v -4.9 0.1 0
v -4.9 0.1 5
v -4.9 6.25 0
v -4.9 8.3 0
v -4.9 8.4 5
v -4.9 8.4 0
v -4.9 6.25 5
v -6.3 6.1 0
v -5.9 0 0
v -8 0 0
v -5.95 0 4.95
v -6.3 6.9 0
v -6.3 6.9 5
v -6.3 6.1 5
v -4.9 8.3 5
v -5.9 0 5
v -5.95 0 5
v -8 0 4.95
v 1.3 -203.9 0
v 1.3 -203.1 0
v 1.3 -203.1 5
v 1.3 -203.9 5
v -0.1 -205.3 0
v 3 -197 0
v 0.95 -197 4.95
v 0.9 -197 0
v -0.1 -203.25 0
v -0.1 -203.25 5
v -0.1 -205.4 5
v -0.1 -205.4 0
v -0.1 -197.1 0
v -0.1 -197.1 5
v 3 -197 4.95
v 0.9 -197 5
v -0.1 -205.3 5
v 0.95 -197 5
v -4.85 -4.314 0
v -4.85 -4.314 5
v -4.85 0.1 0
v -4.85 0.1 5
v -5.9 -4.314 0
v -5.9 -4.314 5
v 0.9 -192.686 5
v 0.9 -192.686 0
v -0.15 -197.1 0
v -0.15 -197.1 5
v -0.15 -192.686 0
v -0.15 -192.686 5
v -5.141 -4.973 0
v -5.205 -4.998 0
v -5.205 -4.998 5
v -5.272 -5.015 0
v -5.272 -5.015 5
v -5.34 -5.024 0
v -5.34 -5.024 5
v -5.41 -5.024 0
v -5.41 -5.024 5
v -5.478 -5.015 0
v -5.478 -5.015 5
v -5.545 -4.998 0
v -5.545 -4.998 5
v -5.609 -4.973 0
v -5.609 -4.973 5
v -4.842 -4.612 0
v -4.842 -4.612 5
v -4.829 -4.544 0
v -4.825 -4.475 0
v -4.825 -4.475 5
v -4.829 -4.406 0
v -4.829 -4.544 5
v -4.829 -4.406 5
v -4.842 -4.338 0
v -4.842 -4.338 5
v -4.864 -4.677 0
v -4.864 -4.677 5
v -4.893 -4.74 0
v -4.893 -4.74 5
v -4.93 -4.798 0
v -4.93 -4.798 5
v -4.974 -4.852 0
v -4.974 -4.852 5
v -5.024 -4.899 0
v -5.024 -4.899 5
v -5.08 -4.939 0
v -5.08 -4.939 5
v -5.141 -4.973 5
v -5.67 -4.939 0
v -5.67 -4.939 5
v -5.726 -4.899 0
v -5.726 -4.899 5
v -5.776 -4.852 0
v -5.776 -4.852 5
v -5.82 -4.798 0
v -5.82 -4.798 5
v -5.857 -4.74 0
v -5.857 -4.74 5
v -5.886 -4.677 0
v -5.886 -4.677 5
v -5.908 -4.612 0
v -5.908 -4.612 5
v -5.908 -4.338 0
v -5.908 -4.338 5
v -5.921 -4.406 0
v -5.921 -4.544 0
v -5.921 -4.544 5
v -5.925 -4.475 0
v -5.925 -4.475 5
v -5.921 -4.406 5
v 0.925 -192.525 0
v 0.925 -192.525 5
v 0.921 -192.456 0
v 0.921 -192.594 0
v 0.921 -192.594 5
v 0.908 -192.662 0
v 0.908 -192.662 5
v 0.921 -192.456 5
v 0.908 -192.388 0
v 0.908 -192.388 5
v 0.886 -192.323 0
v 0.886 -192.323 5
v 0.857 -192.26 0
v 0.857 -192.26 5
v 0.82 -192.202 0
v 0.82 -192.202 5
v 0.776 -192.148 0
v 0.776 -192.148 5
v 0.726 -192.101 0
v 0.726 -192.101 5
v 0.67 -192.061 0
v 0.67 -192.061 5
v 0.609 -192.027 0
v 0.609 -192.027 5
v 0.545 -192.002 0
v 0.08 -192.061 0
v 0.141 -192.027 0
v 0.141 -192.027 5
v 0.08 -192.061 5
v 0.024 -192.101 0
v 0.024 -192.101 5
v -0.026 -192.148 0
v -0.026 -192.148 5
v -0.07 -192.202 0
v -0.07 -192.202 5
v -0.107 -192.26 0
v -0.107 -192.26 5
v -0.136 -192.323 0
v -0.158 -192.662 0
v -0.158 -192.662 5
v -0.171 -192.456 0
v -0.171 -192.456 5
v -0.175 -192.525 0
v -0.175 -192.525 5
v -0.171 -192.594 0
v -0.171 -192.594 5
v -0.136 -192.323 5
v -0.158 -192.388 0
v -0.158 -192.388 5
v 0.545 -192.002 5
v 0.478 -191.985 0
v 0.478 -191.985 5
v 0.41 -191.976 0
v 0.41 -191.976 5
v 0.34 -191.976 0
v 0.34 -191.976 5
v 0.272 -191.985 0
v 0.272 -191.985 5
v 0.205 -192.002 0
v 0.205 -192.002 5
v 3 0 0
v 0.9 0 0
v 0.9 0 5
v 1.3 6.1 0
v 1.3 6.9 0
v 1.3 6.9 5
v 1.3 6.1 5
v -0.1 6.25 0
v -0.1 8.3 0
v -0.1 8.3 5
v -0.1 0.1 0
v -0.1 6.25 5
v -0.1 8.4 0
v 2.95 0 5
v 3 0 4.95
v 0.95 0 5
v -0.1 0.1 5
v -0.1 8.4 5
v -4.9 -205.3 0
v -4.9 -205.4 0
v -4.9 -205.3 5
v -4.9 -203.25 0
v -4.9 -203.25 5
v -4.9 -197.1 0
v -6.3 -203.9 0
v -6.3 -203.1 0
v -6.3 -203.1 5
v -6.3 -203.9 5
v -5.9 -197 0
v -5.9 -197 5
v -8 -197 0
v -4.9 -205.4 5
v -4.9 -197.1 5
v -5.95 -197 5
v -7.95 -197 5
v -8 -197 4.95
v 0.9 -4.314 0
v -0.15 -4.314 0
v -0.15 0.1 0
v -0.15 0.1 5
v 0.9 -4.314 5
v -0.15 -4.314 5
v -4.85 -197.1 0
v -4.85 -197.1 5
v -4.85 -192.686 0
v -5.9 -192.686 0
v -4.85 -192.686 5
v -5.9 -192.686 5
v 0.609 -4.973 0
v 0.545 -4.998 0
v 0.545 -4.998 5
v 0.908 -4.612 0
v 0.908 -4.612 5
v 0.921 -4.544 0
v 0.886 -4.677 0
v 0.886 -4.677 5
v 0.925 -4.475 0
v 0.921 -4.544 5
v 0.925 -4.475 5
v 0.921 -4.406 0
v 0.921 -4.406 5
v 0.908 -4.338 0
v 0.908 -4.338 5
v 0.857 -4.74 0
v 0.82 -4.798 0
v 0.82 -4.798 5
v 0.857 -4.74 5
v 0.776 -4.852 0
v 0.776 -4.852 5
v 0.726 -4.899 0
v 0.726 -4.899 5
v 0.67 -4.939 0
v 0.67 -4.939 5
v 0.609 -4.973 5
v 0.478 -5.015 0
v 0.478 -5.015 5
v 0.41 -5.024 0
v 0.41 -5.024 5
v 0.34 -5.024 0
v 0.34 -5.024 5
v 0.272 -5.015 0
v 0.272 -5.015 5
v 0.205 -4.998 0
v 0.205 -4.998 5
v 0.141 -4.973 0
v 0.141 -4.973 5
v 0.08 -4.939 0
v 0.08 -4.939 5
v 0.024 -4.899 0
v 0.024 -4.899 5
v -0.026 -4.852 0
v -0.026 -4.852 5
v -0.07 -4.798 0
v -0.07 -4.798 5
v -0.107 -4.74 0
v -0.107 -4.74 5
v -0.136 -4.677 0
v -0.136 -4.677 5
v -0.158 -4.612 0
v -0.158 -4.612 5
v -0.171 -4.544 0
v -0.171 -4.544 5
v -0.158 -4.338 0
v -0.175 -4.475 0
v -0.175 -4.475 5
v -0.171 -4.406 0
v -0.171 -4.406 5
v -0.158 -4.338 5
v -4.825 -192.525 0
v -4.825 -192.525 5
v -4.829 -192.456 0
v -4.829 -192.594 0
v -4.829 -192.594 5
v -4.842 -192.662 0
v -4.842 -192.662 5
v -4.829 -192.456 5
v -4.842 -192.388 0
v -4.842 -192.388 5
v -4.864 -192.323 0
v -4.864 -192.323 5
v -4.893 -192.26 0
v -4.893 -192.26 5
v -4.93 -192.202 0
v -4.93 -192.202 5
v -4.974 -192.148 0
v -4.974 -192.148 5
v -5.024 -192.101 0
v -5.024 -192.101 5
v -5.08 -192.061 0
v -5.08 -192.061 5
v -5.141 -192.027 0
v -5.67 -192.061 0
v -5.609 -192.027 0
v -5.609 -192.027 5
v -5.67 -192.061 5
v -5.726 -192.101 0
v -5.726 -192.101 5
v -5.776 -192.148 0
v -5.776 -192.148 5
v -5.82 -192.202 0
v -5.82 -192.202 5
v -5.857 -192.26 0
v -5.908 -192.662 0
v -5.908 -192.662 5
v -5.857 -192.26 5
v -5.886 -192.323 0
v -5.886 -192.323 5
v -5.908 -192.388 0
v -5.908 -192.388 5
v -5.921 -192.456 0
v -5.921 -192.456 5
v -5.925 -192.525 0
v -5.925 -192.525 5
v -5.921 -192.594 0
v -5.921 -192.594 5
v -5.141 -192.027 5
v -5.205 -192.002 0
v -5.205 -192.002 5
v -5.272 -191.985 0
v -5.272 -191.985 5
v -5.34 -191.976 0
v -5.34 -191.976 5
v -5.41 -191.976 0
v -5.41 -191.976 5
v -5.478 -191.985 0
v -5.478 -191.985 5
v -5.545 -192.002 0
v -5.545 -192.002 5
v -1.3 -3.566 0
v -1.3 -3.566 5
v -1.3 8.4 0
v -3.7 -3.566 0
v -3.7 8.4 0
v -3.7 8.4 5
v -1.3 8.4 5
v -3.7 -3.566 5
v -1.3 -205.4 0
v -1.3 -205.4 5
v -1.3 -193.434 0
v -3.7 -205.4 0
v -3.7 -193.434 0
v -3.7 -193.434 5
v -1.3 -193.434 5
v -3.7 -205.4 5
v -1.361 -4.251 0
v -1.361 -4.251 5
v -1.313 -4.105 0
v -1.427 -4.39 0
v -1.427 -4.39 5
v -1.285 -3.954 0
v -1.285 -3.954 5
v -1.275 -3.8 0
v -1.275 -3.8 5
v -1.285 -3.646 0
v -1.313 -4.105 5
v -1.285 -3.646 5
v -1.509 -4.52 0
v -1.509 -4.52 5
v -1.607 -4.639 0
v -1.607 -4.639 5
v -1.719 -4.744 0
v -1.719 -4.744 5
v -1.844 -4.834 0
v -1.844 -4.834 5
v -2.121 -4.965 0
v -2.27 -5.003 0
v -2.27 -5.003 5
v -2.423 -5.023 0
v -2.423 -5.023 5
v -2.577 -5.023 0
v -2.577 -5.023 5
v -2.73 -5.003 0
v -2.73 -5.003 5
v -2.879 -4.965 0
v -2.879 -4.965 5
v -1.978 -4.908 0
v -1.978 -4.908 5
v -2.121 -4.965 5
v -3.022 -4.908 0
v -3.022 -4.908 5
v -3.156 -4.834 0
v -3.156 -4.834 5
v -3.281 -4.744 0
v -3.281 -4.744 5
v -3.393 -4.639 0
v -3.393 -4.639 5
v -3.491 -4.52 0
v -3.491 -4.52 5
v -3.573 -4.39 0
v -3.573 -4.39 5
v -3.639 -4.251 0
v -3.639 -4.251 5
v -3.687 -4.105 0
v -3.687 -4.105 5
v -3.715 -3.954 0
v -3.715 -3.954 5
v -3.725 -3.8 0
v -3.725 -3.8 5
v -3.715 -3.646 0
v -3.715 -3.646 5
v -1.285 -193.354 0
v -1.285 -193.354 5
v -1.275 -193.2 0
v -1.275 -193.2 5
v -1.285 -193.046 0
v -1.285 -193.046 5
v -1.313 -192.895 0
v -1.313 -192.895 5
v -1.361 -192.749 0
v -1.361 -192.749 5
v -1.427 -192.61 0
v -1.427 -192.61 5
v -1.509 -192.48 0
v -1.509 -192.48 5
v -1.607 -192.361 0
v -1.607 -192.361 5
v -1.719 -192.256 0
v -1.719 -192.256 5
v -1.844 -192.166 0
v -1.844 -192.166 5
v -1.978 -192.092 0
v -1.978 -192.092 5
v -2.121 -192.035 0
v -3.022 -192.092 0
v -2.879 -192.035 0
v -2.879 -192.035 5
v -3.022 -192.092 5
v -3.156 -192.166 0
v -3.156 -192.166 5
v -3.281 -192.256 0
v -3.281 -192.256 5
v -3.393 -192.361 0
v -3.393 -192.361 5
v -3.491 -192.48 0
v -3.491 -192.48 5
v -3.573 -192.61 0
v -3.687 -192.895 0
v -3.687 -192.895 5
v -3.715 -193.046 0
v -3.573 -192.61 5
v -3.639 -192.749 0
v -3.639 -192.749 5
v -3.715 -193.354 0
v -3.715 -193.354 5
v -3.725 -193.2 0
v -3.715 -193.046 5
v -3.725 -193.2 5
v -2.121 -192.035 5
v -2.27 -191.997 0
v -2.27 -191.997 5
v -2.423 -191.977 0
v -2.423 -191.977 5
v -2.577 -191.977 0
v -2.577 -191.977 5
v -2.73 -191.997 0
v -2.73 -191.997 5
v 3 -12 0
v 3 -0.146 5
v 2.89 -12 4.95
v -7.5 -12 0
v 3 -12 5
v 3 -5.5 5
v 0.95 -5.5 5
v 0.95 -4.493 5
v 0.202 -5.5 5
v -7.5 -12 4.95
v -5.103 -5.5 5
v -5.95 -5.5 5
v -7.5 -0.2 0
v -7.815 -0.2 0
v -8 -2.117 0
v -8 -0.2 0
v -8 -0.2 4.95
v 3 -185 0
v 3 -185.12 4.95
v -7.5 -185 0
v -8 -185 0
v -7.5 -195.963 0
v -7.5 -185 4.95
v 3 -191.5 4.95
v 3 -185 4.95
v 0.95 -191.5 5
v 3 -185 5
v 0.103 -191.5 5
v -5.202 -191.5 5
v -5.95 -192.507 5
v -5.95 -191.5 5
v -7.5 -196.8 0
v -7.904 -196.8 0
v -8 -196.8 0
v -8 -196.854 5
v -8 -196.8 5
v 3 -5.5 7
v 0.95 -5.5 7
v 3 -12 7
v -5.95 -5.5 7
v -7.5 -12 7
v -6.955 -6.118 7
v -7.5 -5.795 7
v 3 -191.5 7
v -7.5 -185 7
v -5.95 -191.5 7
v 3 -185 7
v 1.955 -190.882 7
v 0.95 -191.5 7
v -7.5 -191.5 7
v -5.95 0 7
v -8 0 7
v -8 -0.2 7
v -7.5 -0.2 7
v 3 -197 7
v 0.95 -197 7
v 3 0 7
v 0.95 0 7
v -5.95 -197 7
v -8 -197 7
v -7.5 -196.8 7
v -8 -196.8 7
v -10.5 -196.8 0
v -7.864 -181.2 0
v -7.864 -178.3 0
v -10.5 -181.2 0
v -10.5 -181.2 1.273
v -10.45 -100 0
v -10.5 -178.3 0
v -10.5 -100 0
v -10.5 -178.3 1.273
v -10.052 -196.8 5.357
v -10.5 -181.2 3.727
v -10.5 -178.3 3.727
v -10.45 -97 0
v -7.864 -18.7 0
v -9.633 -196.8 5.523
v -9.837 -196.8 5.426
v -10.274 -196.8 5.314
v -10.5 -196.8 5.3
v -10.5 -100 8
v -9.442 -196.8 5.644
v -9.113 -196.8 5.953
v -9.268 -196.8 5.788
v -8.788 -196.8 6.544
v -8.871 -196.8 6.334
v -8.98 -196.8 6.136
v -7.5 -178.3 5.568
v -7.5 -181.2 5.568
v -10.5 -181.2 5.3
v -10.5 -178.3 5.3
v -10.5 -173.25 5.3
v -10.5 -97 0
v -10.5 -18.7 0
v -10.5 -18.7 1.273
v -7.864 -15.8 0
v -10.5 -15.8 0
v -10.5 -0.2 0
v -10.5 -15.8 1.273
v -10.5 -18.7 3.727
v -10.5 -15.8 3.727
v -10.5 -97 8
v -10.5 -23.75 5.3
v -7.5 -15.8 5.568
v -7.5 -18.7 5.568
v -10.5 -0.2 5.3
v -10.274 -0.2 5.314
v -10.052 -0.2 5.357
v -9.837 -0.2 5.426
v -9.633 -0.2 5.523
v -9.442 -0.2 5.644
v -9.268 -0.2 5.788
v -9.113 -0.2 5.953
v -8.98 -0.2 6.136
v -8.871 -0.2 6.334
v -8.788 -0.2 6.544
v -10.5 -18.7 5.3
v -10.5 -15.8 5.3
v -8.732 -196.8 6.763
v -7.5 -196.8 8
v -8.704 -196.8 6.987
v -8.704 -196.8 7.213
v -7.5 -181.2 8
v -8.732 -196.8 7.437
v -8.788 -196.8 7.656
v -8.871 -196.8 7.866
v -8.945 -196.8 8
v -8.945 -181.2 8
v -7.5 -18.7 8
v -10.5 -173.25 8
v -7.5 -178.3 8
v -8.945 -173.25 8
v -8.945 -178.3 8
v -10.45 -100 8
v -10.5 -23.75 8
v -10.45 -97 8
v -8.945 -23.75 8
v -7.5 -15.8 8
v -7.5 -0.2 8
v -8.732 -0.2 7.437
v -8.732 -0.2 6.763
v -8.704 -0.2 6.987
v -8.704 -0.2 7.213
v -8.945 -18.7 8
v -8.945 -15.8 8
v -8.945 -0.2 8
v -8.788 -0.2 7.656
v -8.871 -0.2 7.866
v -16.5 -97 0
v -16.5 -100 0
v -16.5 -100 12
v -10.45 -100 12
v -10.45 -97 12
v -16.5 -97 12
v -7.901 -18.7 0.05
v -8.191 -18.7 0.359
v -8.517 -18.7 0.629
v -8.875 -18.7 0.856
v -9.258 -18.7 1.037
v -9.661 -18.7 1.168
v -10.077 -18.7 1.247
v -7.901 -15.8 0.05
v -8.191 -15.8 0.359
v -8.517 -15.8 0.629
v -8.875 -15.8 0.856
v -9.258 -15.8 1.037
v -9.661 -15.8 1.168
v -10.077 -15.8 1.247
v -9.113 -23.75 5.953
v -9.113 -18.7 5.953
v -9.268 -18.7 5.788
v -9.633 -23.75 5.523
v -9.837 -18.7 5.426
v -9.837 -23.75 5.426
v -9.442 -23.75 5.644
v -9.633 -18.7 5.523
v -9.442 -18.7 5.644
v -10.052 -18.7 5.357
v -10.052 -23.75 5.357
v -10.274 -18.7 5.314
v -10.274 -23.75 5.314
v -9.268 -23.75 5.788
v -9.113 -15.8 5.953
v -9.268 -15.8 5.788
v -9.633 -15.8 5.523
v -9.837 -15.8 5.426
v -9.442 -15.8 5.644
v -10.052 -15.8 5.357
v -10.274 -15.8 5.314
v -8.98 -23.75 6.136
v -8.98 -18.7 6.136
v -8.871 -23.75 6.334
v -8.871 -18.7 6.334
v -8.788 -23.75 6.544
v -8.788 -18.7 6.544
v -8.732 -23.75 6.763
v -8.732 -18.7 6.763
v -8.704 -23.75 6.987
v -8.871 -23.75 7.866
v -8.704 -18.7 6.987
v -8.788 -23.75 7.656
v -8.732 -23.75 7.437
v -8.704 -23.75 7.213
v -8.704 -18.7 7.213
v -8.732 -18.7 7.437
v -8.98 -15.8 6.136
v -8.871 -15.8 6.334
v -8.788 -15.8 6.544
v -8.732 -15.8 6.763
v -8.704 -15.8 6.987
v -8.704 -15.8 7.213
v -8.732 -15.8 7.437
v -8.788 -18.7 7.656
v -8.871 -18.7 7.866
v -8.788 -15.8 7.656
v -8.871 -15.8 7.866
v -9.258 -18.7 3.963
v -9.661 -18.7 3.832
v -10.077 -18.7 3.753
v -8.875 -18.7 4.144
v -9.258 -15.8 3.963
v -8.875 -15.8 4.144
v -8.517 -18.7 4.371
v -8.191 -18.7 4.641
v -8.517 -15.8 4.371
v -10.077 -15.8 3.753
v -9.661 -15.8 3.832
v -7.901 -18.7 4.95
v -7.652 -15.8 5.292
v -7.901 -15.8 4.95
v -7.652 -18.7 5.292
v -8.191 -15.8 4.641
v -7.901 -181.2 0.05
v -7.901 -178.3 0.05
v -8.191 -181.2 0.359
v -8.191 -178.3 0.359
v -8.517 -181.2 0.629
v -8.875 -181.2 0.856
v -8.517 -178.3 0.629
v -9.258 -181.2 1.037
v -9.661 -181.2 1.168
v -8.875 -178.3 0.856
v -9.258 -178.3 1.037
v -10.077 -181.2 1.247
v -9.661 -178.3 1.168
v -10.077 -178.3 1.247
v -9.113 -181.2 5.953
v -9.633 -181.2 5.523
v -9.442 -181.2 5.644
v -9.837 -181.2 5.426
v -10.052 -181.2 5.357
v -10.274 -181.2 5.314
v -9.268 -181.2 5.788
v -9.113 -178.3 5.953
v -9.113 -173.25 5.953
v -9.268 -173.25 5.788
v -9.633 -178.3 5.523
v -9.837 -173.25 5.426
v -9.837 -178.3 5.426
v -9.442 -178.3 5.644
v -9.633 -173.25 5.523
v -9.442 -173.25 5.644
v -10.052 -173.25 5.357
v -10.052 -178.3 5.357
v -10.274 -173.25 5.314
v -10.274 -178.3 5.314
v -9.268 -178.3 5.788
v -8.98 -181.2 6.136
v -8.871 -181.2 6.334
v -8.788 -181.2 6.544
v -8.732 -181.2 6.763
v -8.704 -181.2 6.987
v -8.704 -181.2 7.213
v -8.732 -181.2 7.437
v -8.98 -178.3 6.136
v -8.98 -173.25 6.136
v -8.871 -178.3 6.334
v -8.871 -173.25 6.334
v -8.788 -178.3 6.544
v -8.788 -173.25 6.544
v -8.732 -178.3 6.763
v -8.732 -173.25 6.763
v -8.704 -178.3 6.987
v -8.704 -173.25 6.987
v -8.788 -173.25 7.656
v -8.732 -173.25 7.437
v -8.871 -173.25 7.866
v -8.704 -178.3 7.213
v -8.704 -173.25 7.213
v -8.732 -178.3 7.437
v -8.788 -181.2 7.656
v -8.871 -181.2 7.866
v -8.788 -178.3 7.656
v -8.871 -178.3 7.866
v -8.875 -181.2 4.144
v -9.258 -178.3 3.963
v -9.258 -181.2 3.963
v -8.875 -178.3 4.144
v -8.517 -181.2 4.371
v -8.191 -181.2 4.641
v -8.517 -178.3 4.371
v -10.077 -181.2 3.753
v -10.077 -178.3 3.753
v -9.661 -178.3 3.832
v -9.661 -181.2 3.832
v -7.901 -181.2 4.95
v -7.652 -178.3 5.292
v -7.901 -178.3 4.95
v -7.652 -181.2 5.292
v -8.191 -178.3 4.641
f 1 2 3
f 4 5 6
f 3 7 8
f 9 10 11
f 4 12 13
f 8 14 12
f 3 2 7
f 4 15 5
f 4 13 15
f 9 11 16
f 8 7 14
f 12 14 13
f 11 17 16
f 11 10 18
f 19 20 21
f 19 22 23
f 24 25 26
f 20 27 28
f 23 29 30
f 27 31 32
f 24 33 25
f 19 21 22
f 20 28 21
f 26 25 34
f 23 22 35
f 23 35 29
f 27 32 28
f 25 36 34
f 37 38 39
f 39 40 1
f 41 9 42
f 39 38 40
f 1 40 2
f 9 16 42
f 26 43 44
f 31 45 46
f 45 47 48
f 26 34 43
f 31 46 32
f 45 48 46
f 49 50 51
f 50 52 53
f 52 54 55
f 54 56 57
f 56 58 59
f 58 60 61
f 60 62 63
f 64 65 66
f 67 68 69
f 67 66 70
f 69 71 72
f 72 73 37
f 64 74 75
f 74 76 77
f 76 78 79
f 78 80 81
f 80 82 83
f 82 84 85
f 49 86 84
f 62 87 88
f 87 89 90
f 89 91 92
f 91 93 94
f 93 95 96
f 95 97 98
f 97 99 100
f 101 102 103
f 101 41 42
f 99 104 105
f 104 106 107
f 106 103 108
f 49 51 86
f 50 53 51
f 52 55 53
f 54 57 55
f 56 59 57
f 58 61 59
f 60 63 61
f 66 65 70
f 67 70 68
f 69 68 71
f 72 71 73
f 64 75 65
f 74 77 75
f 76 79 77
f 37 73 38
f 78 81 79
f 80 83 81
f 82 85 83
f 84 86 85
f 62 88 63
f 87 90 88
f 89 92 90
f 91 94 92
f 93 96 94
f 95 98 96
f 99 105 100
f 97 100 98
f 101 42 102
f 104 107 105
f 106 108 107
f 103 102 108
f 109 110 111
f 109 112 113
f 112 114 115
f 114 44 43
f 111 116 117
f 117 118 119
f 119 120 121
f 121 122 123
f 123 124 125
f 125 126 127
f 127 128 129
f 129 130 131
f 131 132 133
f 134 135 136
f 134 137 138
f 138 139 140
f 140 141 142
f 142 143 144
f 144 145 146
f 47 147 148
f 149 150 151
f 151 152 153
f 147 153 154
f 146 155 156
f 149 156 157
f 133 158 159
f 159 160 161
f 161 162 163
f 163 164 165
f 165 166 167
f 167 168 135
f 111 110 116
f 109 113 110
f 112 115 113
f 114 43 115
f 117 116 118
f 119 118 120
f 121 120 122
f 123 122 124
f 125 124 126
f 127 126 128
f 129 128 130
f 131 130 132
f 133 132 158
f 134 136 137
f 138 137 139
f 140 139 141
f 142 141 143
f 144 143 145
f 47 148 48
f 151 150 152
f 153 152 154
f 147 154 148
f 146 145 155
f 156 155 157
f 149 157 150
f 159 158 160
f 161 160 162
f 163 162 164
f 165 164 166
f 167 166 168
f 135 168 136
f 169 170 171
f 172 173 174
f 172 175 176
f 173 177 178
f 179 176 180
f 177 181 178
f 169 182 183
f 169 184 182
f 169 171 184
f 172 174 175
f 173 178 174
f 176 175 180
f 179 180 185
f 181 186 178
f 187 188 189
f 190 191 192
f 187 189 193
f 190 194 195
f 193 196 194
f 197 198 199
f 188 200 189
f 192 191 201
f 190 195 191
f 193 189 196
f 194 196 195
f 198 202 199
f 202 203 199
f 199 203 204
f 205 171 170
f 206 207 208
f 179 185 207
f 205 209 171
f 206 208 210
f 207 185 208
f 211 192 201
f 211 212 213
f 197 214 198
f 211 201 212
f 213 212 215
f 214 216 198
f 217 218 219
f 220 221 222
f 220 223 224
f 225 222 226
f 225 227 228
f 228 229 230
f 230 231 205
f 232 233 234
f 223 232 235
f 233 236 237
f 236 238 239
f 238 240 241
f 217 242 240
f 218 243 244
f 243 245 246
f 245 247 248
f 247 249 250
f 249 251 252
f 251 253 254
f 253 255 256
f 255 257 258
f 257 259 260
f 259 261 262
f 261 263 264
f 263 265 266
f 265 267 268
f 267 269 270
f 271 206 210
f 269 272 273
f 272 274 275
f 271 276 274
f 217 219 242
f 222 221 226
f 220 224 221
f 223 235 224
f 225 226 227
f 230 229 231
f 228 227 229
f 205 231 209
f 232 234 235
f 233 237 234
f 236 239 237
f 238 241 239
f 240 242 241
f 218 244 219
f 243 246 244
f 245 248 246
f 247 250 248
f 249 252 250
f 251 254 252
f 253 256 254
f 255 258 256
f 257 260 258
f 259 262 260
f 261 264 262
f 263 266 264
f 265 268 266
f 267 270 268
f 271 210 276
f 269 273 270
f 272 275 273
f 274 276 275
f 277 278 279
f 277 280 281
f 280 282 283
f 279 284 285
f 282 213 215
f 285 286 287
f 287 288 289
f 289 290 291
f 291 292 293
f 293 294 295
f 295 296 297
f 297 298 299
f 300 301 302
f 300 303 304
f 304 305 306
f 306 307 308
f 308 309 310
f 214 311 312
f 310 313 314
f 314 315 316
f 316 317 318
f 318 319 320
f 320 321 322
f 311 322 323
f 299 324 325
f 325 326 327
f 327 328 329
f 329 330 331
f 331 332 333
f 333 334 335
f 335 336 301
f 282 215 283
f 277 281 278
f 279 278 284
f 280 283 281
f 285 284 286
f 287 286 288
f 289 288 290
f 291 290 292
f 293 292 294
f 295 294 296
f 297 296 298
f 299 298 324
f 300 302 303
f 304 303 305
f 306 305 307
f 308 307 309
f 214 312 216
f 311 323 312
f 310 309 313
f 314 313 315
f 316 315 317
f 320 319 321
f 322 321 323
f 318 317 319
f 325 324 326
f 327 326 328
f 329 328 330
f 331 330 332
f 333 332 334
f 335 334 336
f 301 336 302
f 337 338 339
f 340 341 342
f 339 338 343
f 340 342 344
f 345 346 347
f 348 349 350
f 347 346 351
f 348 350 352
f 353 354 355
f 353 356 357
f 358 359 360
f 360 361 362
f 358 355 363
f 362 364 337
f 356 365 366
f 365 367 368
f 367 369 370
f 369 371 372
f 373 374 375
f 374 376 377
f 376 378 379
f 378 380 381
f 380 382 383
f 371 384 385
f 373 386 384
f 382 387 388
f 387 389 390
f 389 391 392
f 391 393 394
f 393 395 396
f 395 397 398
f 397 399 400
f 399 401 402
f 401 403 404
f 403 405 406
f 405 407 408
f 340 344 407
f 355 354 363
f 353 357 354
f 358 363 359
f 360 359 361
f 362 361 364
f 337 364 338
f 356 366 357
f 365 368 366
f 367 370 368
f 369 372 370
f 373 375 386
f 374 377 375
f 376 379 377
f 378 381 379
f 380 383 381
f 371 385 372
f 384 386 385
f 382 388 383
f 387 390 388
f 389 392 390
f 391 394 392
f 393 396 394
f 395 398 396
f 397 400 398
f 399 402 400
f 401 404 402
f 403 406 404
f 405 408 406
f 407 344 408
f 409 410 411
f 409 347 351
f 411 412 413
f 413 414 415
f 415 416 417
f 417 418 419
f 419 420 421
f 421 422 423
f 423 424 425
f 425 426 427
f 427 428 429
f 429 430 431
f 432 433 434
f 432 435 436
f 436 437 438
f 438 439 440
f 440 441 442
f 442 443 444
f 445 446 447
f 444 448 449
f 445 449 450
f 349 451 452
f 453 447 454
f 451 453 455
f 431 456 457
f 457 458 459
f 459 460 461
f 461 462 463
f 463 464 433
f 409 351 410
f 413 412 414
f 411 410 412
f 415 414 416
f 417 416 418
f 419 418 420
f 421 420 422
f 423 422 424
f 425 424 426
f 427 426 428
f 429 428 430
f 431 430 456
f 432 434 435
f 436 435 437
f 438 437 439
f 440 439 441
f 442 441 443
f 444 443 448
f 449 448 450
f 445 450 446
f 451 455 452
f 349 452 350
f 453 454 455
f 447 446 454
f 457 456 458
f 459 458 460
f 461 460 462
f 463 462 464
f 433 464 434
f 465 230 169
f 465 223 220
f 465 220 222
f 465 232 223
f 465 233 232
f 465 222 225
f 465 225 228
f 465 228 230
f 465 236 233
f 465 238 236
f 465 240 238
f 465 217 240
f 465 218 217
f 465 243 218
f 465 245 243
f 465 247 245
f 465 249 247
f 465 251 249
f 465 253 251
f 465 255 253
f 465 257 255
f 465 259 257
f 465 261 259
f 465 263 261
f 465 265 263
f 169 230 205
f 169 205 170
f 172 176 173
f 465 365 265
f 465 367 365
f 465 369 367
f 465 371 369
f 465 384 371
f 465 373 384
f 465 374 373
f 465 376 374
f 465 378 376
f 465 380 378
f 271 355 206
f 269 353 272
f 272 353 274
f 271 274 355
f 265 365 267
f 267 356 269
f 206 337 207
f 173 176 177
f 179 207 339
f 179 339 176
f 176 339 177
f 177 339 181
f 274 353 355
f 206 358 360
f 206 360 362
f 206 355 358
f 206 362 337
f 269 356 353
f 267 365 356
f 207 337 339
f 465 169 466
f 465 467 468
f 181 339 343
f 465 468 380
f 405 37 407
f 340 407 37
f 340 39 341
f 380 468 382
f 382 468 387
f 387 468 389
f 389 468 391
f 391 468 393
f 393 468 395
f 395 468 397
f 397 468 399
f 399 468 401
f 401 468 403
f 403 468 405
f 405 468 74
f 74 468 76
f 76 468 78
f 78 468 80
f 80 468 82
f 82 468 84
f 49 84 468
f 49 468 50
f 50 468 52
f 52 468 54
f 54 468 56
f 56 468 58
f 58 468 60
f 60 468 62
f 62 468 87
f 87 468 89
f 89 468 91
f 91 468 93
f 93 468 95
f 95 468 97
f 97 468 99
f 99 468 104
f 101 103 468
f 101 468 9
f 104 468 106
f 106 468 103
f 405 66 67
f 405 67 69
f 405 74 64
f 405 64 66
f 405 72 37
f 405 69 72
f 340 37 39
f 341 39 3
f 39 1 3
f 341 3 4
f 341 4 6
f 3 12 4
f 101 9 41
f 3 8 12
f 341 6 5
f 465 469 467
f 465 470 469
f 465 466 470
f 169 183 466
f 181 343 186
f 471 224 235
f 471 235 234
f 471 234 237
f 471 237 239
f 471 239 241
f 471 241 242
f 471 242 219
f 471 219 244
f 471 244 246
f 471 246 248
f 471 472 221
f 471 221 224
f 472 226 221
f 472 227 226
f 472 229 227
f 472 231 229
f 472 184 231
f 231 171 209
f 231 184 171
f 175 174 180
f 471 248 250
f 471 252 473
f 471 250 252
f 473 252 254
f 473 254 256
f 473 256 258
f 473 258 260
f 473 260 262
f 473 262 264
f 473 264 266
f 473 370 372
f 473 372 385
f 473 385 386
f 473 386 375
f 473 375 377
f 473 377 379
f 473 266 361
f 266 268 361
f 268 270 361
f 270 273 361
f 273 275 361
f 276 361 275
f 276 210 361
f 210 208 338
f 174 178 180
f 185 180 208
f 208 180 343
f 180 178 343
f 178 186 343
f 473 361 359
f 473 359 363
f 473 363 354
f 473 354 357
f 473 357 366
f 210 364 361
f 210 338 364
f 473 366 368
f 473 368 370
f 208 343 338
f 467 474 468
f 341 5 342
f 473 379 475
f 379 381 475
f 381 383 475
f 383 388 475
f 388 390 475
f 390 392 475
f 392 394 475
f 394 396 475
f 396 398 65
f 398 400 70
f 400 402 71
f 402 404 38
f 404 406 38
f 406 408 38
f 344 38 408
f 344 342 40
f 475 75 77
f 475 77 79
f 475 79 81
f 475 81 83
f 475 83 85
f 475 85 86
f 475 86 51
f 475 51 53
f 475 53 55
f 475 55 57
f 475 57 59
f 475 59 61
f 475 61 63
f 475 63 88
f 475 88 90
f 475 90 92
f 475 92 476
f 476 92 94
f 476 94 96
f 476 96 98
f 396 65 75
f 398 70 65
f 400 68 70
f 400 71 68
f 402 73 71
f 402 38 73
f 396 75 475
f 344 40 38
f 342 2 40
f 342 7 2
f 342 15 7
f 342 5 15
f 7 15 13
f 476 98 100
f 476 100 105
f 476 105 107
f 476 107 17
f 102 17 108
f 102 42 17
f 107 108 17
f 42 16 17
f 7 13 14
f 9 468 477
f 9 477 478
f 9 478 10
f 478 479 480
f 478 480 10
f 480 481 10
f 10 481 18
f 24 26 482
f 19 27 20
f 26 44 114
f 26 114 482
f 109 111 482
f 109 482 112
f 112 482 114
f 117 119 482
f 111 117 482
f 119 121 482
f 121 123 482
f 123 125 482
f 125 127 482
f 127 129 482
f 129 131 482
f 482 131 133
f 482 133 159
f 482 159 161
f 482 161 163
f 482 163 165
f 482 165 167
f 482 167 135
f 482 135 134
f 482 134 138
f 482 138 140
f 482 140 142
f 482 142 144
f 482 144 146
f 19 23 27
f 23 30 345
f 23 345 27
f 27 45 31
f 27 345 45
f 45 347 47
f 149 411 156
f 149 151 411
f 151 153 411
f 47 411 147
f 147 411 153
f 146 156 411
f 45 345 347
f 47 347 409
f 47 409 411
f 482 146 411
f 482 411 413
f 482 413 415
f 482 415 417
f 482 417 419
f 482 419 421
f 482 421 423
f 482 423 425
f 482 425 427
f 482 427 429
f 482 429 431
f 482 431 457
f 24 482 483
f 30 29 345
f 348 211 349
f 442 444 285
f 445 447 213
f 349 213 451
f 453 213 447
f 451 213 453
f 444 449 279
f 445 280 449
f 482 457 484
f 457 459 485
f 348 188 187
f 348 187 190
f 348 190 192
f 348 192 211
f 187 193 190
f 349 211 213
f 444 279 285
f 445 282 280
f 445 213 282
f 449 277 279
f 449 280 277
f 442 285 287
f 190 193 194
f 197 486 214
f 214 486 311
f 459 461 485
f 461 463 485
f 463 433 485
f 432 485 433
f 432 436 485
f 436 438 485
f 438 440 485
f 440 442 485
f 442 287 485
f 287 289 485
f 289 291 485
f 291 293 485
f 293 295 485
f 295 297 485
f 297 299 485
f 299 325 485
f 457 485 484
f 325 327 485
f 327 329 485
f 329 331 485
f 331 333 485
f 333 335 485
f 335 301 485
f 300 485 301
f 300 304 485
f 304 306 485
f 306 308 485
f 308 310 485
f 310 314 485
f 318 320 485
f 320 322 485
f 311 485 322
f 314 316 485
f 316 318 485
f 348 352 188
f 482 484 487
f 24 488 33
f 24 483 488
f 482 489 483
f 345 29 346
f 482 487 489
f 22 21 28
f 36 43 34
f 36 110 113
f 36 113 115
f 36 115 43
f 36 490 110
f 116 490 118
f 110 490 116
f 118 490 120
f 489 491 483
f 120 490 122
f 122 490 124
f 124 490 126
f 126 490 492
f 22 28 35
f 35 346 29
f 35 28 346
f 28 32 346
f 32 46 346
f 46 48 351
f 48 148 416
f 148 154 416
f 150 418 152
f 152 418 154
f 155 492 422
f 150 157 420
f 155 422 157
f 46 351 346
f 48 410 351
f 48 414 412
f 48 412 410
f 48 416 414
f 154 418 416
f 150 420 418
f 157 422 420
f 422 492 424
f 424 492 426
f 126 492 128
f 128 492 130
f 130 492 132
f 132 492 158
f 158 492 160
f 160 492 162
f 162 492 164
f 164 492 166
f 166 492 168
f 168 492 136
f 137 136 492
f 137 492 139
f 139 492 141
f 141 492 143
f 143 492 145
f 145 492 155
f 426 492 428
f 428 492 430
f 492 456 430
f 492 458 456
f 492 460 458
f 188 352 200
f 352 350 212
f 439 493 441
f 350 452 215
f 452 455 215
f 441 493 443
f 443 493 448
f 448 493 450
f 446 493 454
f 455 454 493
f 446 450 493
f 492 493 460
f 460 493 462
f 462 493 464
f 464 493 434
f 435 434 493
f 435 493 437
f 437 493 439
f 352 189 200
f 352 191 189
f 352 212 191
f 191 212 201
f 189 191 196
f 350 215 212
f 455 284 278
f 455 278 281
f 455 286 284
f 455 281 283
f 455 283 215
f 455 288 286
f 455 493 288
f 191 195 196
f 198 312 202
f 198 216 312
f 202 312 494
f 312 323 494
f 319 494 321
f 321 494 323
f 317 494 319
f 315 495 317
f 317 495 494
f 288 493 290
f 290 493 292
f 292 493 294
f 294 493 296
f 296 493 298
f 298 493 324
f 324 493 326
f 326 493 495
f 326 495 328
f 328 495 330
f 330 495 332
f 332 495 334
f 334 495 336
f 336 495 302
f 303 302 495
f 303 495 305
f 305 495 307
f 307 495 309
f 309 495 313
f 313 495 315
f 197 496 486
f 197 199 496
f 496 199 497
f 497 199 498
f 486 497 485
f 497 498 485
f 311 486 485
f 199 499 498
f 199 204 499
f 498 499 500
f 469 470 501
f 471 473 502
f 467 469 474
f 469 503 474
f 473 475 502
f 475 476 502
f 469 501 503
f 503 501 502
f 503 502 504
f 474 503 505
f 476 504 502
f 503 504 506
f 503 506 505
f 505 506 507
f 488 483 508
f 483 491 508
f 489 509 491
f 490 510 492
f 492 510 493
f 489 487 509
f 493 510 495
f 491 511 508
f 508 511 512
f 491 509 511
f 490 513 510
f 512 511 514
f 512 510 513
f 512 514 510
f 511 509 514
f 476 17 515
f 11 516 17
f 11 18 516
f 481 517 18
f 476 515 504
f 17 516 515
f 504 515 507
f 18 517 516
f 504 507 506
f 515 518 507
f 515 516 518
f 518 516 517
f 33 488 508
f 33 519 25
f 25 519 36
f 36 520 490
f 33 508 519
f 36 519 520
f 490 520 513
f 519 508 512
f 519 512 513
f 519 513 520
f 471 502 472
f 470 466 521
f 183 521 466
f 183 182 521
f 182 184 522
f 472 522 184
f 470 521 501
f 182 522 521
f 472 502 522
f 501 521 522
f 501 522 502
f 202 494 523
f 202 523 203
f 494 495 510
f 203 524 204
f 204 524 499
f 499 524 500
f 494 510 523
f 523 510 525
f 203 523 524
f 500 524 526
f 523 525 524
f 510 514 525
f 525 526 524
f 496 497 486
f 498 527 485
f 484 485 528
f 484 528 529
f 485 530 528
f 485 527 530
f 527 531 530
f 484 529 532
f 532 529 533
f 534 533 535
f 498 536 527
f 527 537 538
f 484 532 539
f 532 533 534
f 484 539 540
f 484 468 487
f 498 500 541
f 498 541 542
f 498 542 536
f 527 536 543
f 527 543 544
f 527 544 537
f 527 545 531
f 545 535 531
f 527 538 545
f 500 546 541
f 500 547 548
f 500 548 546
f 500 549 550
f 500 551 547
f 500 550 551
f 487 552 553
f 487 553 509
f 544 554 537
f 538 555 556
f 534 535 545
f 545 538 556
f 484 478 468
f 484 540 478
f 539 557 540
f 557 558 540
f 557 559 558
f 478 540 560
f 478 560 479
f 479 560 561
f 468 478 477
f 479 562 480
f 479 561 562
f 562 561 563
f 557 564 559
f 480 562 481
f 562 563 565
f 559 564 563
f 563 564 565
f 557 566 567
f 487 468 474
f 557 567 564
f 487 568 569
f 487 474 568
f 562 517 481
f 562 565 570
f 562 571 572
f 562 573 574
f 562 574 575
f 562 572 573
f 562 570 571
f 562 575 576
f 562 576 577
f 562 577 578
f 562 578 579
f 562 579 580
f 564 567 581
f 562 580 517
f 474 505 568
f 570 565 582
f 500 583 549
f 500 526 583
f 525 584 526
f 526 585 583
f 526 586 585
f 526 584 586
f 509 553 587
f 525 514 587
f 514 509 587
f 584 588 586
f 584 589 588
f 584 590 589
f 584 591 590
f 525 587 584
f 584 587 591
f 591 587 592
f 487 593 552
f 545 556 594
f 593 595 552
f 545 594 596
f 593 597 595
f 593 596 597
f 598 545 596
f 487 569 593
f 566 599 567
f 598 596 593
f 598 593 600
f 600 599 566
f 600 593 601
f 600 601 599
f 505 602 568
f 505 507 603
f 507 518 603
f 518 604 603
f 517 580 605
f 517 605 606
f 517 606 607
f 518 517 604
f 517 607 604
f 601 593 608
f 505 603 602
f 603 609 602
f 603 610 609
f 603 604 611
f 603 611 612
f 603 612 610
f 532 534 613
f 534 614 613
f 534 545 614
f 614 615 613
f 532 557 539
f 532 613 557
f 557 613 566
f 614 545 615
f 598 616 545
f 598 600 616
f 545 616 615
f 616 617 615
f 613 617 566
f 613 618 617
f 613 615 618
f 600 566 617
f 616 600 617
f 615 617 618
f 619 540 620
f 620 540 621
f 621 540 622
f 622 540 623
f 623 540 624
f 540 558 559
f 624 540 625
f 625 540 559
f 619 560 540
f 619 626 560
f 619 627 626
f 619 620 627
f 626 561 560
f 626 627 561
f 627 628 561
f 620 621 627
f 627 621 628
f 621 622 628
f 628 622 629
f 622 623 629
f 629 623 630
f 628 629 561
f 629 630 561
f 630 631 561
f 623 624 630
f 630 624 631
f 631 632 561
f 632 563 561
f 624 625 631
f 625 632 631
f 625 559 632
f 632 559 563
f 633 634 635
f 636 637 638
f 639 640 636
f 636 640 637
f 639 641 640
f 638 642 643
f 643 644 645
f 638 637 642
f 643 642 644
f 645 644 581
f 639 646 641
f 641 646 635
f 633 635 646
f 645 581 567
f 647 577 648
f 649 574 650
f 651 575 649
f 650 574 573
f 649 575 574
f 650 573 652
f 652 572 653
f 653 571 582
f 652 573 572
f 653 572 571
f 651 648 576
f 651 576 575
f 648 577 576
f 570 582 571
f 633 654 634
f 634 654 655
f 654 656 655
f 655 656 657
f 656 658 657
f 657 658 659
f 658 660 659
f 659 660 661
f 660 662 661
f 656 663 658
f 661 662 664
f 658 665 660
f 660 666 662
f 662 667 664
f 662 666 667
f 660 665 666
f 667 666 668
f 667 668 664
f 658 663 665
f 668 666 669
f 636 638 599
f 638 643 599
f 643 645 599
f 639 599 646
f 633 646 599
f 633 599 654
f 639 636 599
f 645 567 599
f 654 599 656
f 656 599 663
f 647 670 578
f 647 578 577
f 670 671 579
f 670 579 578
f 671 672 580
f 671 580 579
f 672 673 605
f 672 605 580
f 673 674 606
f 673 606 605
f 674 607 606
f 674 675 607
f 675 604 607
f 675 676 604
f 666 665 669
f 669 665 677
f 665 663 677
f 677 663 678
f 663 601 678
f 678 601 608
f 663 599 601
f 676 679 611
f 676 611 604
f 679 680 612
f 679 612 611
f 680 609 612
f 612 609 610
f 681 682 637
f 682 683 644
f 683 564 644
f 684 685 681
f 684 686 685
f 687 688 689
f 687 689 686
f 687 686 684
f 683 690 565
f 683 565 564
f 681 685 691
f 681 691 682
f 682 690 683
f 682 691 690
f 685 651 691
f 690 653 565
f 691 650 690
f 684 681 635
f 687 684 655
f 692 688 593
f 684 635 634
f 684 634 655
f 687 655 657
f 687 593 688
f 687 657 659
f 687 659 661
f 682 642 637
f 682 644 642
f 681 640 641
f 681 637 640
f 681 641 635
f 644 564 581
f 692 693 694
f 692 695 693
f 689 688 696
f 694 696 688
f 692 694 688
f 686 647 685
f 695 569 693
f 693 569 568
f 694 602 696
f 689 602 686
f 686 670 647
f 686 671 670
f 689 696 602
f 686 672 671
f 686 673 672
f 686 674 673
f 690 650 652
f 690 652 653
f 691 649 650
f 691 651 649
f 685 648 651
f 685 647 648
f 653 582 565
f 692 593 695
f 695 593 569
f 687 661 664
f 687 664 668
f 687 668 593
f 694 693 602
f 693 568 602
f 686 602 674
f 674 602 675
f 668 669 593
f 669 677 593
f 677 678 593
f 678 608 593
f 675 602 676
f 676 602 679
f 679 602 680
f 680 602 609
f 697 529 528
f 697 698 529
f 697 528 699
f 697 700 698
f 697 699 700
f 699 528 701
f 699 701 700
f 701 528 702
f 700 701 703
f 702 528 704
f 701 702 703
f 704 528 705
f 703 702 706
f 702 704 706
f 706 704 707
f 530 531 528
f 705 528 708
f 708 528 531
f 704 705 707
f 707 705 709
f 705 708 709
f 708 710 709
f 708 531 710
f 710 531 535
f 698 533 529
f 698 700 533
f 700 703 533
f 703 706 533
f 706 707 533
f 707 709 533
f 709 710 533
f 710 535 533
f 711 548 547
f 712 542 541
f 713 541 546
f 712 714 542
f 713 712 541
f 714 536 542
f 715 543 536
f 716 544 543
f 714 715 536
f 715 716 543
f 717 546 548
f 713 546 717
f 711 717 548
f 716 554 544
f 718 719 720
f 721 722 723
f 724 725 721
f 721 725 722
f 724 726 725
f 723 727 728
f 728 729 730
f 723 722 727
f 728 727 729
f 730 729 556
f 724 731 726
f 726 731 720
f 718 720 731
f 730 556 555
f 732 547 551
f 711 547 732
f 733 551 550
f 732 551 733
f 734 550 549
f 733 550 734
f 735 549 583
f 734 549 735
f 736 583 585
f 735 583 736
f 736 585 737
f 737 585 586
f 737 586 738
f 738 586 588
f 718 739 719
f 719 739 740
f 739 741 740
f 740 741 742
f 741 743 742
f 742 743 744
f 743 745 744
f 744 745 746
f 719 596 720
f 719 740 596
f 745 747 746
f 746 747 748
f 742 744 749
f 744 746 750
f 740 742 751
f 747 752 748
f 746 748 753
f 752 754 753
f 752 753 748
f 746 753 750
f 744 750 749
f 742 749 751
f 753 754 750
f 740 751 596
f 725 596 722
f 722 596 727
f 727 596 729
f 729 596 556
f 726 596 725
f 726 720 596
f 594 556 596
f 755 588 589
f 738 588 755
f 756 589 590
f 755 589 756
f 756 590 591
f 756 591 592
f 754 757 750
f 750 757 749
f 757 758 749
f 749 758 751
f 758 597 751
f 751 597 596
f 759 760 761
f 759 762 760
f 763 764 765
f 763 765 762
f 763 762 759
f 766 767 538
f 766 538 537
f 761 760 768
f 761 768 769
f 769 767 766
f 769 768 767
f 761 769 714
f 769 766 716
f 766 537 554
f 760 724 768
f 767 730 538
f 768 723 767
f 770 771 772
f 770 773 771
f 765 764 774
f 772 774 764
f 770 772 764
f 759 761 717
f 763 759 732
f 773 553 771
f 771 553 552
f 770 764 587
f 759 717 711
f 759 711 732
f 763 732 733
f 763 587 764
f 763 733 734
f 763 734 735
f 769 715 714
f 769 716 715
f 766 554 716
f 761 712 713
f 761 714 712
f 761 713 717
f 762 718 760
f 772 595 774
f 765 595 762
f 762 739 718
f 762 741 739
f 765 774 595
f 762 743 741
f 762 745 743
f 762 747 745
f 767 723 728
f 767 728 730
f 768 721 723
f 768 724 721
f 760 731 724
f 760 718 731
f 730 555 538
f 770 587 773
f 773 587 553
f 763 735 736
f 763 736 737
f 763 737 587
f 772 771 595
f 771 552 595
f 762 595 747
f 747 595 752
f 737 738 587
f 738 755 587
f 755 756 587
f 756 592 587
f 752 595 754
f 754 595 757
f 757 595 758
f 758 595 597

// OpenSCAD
$fn = 50;

difference() {
	union() {
		translate(v = [0, 0, 0]) {
			rotate(a = [0, 0, 0]) {
				difference() {
					union() {
						translate(v = [0, 0, 2.5]) {
							rotate(a = [0, -90, 0]) {
								difference() {
									union() {
										translate(v = [0, 0, 0]) {
											rotate(a = [0, 0, 0]) {
												difference() {
													union() {
														translate(v = [-2.5, 0, 2.5]) {
															rotate(a = [0, 90.0, 0]) {
																difference() {
																	union() {
																		translate(v = [0, 0, 0]) {
																			rotate(a = [0, 0, 0]) {
																				difference() {
																					union() {
																						translate(v = [0, 0, 0]) {
																							rotate(a = [0, 0, 0]) {
																								difference() {
																									union() {
																										translate(v = [-5.5, -12.0, 0]) {
																											cube(size = [11.0, 20.4, 5.0]);
																										}
																									}
																									union() {
																										translate(v = [0, 0, -0.1]) {
																											linear_extrude(height = 5.2) {
																												polygon(points = [[-2.4, 0], [-2.4, 6.25], [-3.8, 6.1], [-3.8, 6.8999999999999995], [-2.4, 8.299999999999999], [-2.4, 9.399999999999999], [-5.7, 9.399999999999999], [-5.7, 0]]);
																											}
																										}
																										translate(v = [0, 0, -0.1]) {
																											linear_extrude(height = 5.2) {
																												polygon(points = [[-2.35, -4.5], [-2.35, -4.3875], [-2.35, -4.275], [-2.35, -4.1625], [-2.35, -4.05], [-2.35, -3.9375], [-2.35, -3.825], [-2.35, -3.7125], [-2.35, -3.6], [-2.35, -3.4875], [-2.35, -3.375], [-2.35, -3.2625], [-2.35, -3.15], [-2.35, -3.0375], [-2.35, -2.925], [-2.35, -2.8125], [-2.35, -2.7], [-2.35, -2.5875], [-2.35, -2.475], [-2.35, -2.3625], [-2.35, -2.25], [-2.35, -2.1375], [-2.35, -2.025], [-2.35, -1.9125], [-2.35, -1.7999999999999998], [-2.35, -1.6875], [-2.35, -1.5750000000000002], [-2.35, -1.4625], [-2.35, -1.35], [-2.35, -1.2374999999999998], [-2.35, -1.125], [-2.35, -1.0125000000000002], [-2.35, -0.8999999999999999], [-2.35, -0.7875000000000001], [-2.35, -0.6749999999999998], [-2.35, -0.5625], [-2.35, -0.4500000000000002], [-2.35, -0.33750000000000036], [-2.35, -0.22499999999999964], [-2.35, -0.11249999999999982], [-2.35, 0.0], [-2.35, 0.1], [-3.4, 0.1], [-3.4, -4.5]]);
																											}
																										}
																										translate(v = [-2.875, -4.475, -0.1]) {
																											cylinder(h = 5.2, r = 0.55);
																										}
																										translate(v = [0, 0, -0.1]) {
																											linear_extrude(height = 5.2) {
																												polygon(points = [[2.4, 0], [2.4, 6.25], [3.8, 6.1], [3.8, 6.8999999999999995], [2.4, 8.299999999999999], [2.4, 9.399999999999999], [5.7, 9.399999999999999], [5.7, 0]]);
																											}
																										}
																										translate(v = [0, 0, -0.1]) {
																											linear_extrude(height = 5.2) {
																												polygon(points = [[2.35, -4.5], [2.35, -4.3875], [2.35, -4.275], [2.35, -4.1625], [2.35, -4.05], [2.35, -3.9375], [2.35, -3.825], [2.35, -3.7125], [2.35, -3.6], [2.35, -3.4875], [2.35, -3.375], [2.35, -3.2625], [2.35, -3.15], [2.35, -3.0375], [2.35, -2.925], [2.35, -2.8125], [2.35, -2.7], [2.35, -2.5875], [2.35, -2.475], [2.35, -2.3625], [2.35, -2.25], [2.35, -2.1375], [2.35, -2.025], [2.35, -1.9125], [2.35, -1.7999999999999998], [2.35, -1.6875], [2.35, -1.5750000000000002], [2.35, -1.4625], [2.35, -1.35], [2.35, -1.2374999999999998], [2.35, -1.125], [2.35, -1.0125000000000002], [2.35, -0.8999999999999999], [2.35, -0.7875000000000001], [2.35, -0.6749999999999998], [2.35, -0.5625], [2.35, -0.4500000000000002], [2.35, -0.33750000000000036], [2.35, -0.22499999999999964], [2.35, -0.11249999999999982], [2.35, 0.0], [2.35, 0.1], [3.4, 0.1], [3.4, -4.5]]);
																											}
																										}
																										translate(v = [2.875, -4.475, -0.1]) {
																											cylinder(h = 5.2, r = 0.55);
																										}
																										translate(v = [0, 0, -0.1]) {
																											linear_extrude(height = 5.2) {
																												polygon(points = [[-1.2, -3.8499999999999996], [-1.2, -3.6607142857142856], [-1.2, -3.471428571428571], [-1.2, -3.2821428571428566], [-1.2, -3.0928571428571425], [-1.2, -2.9035714285714285], [-1.2, -2.714285714285714], [-1.2, -2.5249999999999995], [-1.2, -2.3357142857142854], [-1.2, -2.1464285714285714], [-1.2, -1.9571428571428569], [-1.2, -1.7678571428571423], [-1.2, -1.5785714285714283], [-1.2, -1.3892857142857138], [-1.2, -1.1999999999999997], [-1.2, -1.0107142857142852], [-1.2, -0.8214285714285712], [-1.2, -0.6321428571428567], [-1.2, -0.4428571428571426], [-1.2, -0.2535714285714281], [-1.2, -0.06428571428571406], [-1.2, 0], [-1.2, 0.12500000000000044], [-1.2, 0.31428571428571495], [-1.2, 0.503571428571429], [-1.2, 0.6928571428571431], [-1.2, 0.8821428571428571], [-1.2, 1.071428571428572], [-1.2, 1.2607142857142861], [-1.2, 1.4500000000000002], [-1.2, 1.6392857142857142], [-1.2, 1.8285714285714292], [-1.2, 2.0178571428571432], [-1.2, 2.2071428571428573], [-1.2, 2.3964285714285714], [-1.2, 2.5857142857142863], [-1.2, 2.7750000000000004], [-1.2, 2.9642857142857144], [-1.2, 3.1535714285714294], [-1.2, 3.3428571428571434], [-1.2, 3.5321428571428575], [-1.2, 3.7214285714285715], [-1.2, 3.9107142857142865], [-1.2, 4.1000000000000005], [-1.2, 4.289285714285715], [-1.2, 4.4785714285714295], [-1.2, 4.667857142857143], [-1.2, 4.857142857142858], [-1.2, 5.046428571428573], [-1.2, 5.235714285714286], [-1.2, 5.425000000000001], [-1.2, 5.614285714285714], [-1.2, 5.803571428571429], [-1.2, 5.992857142857144], [-1.2, 6.1], [-1.2, 6.182142857142857], [-1.2, 6.25], [-1.2, 6.371428571428572], [-1.2, 6.560714285714287], [-1.2, 6.75], [-1.2, 6.939285714285715], [-1.2, 7.128571428571428], [-1.2, 7.317857142857143], [-1.2, 7.507142857142858], [-1.2, 7.696428571428571], [-1.2, 7.885714285714286], [-1.2, 8.075000000000001], [-1.2, 8.264285714285714], [-1.2, 8.45357142857143], [-1.2, 8.642857142857142], [-1.2, 8.832142857142857], [-1.2, 9.021428571428572], [-1.2, 9.210714285714285], [-1.2, 9.4], [1.2, 9.4], [1.2, 9.210714285714285], [1.2, 9.021428571428572], [1.2, 8.832142857142857], [1.2, 8.642857142857142], [1.2, 8.45357142857143], [1.2, 8.264285714285714], [1.2, 8.075000000000001], [1.2, 7.885714285714286], [1.2, 7.696428571428571], [1.2, 7.507142857142858], [1.2, 7.317857142857143], [1.2, 7.128571428571428], [1.2, 6.939285714285715], [1.2, 6.75], [1.2, 6.560714285714287], [1.2, 6.371428571428572], [1.2, 6.25], [1.2, 6.182142857142857], [1.2, 6.1], [1.2, 5.992857142857144], [1.2, 5.803571428571429], [1.2, 5.614285714285714], [1.2, 5.425000000000001], [1.2, 5.235714285714286], [1.2, 5.046428571428573], [1.2, 4.857142857142858], [1.2, 4.667857142857143], [1.2, 4.4785714285714295], [1.2, 4.289285714285715], [1.2, 4.1000000000000005], [1.2, 3.9107142857142865], [1.2, 3.7214285714285715], [1.2, 3.5321428571428575], [1.2, 3.3428571428571434], [1.2, 3.1535714285714294], [1.2, 2.9642857142857144], [1.2, 2.7750000000000004], [1.2, 2.5857142857142863], [1.2, 2.3964285714285714], [1.2, 2.2071428571428573], [1.2, 2.0178571428571432], [1.2, 1.8285714285714292], [1.2, 1.6392857142857142], [1.2, 1.4500000000000002], [1.2, 1.2607142857142861], [1.2, 1.071428571428572], [1.2, 0.8821428571428571], [1.2, 0.6928571428571431], [1.2, 0.503571428571429], [1.2, 0.31428571428571495], [1.2, 0.12500000000000044], [1.2, 0], [1.2, -0.06428571428571406], [1.2, -0.2535714285714281], [1.2, -0.4428571428571426], [1.2, -0.6321428571428567], [1.2, -0.8214285714285712], [1.2, -1.0107142857142852], [1.2, -1.1999999999999997], [1.2, -1.3892857142857138], [1.2, -1.5785714285714283], [1.2, -1.7678571428571423], [1.2, -1.9571428571428569], [1.2, -2.1464285714285714], [1.2, -2.3357142857142854], [1.2, -2.5249999999999995], [1.2, -2.714285714285714], [1.2, -2.9035714285714285], [1.2, -3.0928571428571425], [1.2, -3.2821428571428566], [1.2, -3.471428571428571], [1.2, -3.6607142857142856], [1.2, -3.8499999999999996]]);
																											}
																										}
																										translate(v = [0, -3.8, -0.1]) {
																											cylinder(h = 5.2, r = 1.2249999999999999);
																										}
																									}
																								}
																							}
																						}
																						translate(v = [0, 0, 0]) {
																							rotate(a = [0, 0, 0]) {
																								difference() {
																									union() {
																										translate(v = [-5.5, -12.0, 4.95]) {
																											cube(size = [11.0, 6.5, 2.05]);
																										}
																									}
																									union();
																								}
																							}
																						}
																						translate(v = [-5.5, -12.0, 4.95]) {
																							cube(size = [2.0500000000000003, 12.0, 2.05]);
																						}
																						translate(v = [3.4499999999999997, -12.0, 4.95]) {
																							cube(size = [2.0500000000000003, 12.0, 2.05]);
																						}
																					}
																					union();
																				}
																			}
																		}
																	}
																	union();
																}
															}
														}
													}
													union();
												}
											}
										}
										translate(v = [-2.5, -197.0, 2.5]) {
											rotate(a = [180, -90, 0]) {
												difference() {
													union() {
														translate(v = [0, 0, 0]) {
															rotate(a = [0, 0, 0]) {
																difference() {
																	union() {
																		translate(v = [0, 0, 0]) {
																			rotate(a = [0, 0, 0]) {
																				difference() {
																					union() {
																						translate(v = [-5.5, -12.0, 0]) {
																							cube(size = [11.0, 20.4, 5.0]);
																						}
																					}
																					union() {
																						translate(v = [0, 0, -0.1]) {
																							linear_extrude(height = 5.2) {
																								polygon(points = [[-2.4, 0], [-2.4, 6.25], [-3.8, 6.1], [-3.8, 6.8999999999999995], [-2.4, 8.299999999999999], [-2.4, 9.399999999999999], [-5.7, 9.399999999999999], [-5.7, 0]]);
																							}
																						}
																						translate(v = [0, 0, -0.1]) {
																							linear_extrude(height = 5.2) {
																								polygon(points = [[-2.35, -4.5], [-2.35, -4.3875], [-2.35, -4.275], [-2.35, -4.1625], [-2.35, -4.05], [-2.35, -3.9375], [-2.35, -3.825], [-2.35, -3.7125], [-2.35, -3.6], [-2.35, -3.4875], [-2.35, -3.375], [-2.35, -3.2625], [-2.35, -3.15], [-2.35, -3.0375], [-2.35, -2.925], [-2.35, -2.8125], [-2.35, -2.7], [-2.35, -2.5875], [-2.35, -2.475], [-2.35, -2.3625], [-2.35, -2.25], [-2.35, -2.1375], [-2.35, -2.025], [-2.35, -1.9125], [-2.35, -1.7999999999999998], [-2.35, -1.6875], [-2.35, -1.5750000000000002], [-2.35, -1.4625], [-2.35, -1.35], [-2.35, -1.2374999999999998], [-2.35, -1.125], [-2.35, -1.0125000000000002], [-2.35, -0.8999999999999999], [-2.35, -0.7875000000000001], [-2.35, -0.6749999999999998], [-2.35, -0.5625], [-2.35, -0.4500000000000002], [-2.35, -0.33750000000000036], [-2.35, -0.22499999999999964], [-2.35, -0.11249999999999982], [-2.35, 0.0], [-2.35, 0.1], [-3.4, 0.1], [-3.4, -4.5]]);
																							}
																						}
																						translate(v = [-2.875, -4.475, -0.1]) {
																							cylinder(h = 5.2, r = 0.55);
																						}
																						translate(v = [0, 0, -0.1]) {
																							linear_extrude(height = 5.2) {
																								polygon(points = [[2.4, 0], [2.4, 6.25], [3.8, 6.1], [3.8, 6.8999999999999995], [2.4, 8.299999999999999], [2.4, 9.399999999999999], [5.7, 9.399999999999999], [5.7, 0]]);
																							}
																						}
																						translate(v = [0, 0, -0.1]) {
																							linear_extrude(height = 5.2) {
																								polygon(points = [[2.35, -4.5], [2.35, -4.3875], [2.35, -4.275], [2.35, -4.1625], [2.35, -4.05], [2.35, -3.9375], [2.35, -3.825], [2.35, -3.7125], [2.35, -3.6], [2.35, -3.4875], [2.35, -3.375], [2.35, -3.2625], [2.35, -3.15], [2.35, -3.0375], [2.35, -2.925], [2.35, -2.8125], [2.35, -2.7], [2.35, -2.5875], [2.35, -2.475], [2.35, -2.3625], [2.35, -2.25], [2.35, -2.1375], [2.35, -2.025], [2.35, -1.9125], [2.35, -1.7999999999999998], [2.35, -1.6875], [2.35, -1.5750000000000002], [2.35, -1.4625], [2.35, -1.35], [2.35, -1.2374999999999998], [2.35, -1.125], [2.35, -1.0125000000000002], [2.35, -0.8999999999999999], [2.35, -0.7875000000000001], [2.35, -0.6749999999999998], [2.35, -0.5625], [2.35, -0.4500000000000002], [2.35, -0.33750000000000036], [2.35, -0.22499999999999964], [2.35, -0.11249999999999982], [2.35, 0.0], [2.35, 0.1], [3.4, 0.1], [3.4, -4.5]]);
																							}
																						}
																						translate(v = [2.875, -4.475, -0.1]) {
																							cylinder(h = 5.2, r = 0.55);
																						}
																						translate(v = [0, 0, -0.1]) {
																							linear_extrude(height = 5.2) {
																								polygon(points = [[-1.2, -3.8499999999999996], [-1.2, -3.6607142857142856], [-1.2, -3.471428571428571], [-1.2, -3.2821428571428566], [-1.2, -3.0928571428571425], [-1.2, -2.9035714285714285], [-1.2, -2.714285714285714], [-1.2, -2.5249999999999995], [-1.2, -2.3357142857142854], [-1.2, -2.1464285714285714], [-1.2, -1.9571428571428569], [-1.2, -1.7678571428571423], [-1.2, -1.5785714285714283], [-1.2, -1.3892857142857138], [-1.2, -1.1999999999999997], [-1.2, -1.0107142857142852], [-1.2, -0.8214285714285712], [-1.2, -0.6321428571428567], [-1.2, -0.4428571428571426], [-1.2, -0.2535714285714281], [-1.2, -0.06428571428571406], [-1.2, 0], [-1.2, 0.12500000000000044], [-1.2, 0.31428571428571495], [-1.2, 0.503571428571429], [-1.2, 0.6928571428571431], [-1.2, 0.8821428571428571], [-1.2, 1.071428571428572], [-1.2, 1.2607142857142861], [-1.2, 1.4500000000000002], [-1.2, 1.6392857142857142], [-1.2, 1.8285714285714292], [-1.2, 2.0178571428571432], [-1.2, 2.2071428571428573], [-1.2, 2.3964285714285714], [-1.2, 2.5857142857142863], [-1.2, 2.7750000000000004], [-1.2, 2.9642857142857144], [-1.2, 3.1535714285714294], [-1.2, 3.3428571428571434], [-1.2, 3.5321428571428575], [-1.2, 3.7214285714285715], [-1.2, 3.9107142857142865], [-1.2, 4.1000000000000005], [-1.2, 4.289285714285715], [-1.2, 4.4785714285714295], [-1.2, 4.667857142857143], [-1.2, 4.857142857142858], [-1.2, 5.046428571428573], [-1.2, 5.235714285714286], [-1.2, 5.425000000000001], [-1.2, 5.614285714285714], [-1.2, 5.803571428571429], [-1.2, 5.992857142857144], [-1.2, 6.1], [-1.2, 6.182142857142857], [-1.2, 6.25], [-1.2, 6.371428571428572], [-1.2, 6.560714285714287], [-1.2, 6.75], [-1.2, 6.939285714285715], [-1.2, 7.128571428571428], [-1.2, 7.317857142857143], [-1.2, 7.507142857142858], [-1.2, 7.696428571428571], [-1.2, 7.885714285714286], [-1.2, 8.075000000000001], [-1.2, 8.264285714285714], [-1.2, 8.45357142857143], [-1.2, 8.642857142857142], [-1.2, 8.832142857142857], [-1.2, 9.021428571428572], [-1.2, 9.210714285714285], [-1.2, 9.4], [1.2, 9.4], [1.2, 9.210714285714285], [1.2, 9.021428571428572], [1.2, 8.832142857142857], [1.2, 8.642857142857142], [1.2, 8.45357142857143], [1.2, 8.264285714285714], [1.2, 8.075000000000001], [1.2, 7.885714285714286], [1.2, 7.696428571428571], [1.2, 7.507142857142858], [1.2, 7.317857142857143], [1.2, 7.128571428571428], [1.2, 6.939285714285715], [1.2, 6.75], [1.2, 6.560714285714287], [1.2, 6.371428571428572], [1.2, 6.25], [1.2, 6.182142857142857], [1.2, 6.1], [1.2, 5.992857142857144], [1.2, 5.803571428571429], [1.2, 5.614285714285714], [1.2, 5.425000000000001], [1.2, 5.235714285714286], [1.2, 5.046428571428573], [1.2, 4.857142857142858], [1.2, 4.667857142857143], [1.2, 4.4785714285714295], [1.2, 4.289285714285715], [1.2, 4.1000000000000005], [1.2, 3.9107142857142865], [1.2, 3.7214285714285715], [1.2, 3.5321428571428575], [1.2, 3.3428571428571434], [1.2, 3.1535714285714294], [1.2, 2.9642857142857144], [1.2, 2.7750000000000004], [1.2, 2.5857142857142863], [1.2, 2.3964285714285714], [1.2, 2.2071428571428573], [1.2, 2.0178571428571432], [1.2, 1.8285714285714292], [1.2, 1.6392857142857142], [1.2, 1.4500000000000002], [1.2, 1.2607142857142861], [1.2, 1.071428571428572], [1.2, 0.8821428571428571], [1.2, 0.6928571428571431], [1.2, 0.503571428571429], [1.2, 0.31428571428571495], [1.2, 0.12500000000000044], [1.2, 0], [1.2, -0.06428571428571406], [1.2, -0.2535714285714281], [1.2, -0.4428571428571426], [1.2, -0.6321428571428567], [1.2, -0.8214285714285712], [1.2, -1.0107142857142852], [1.2, -1.1999999999999997], [1.2, -1.3892857142857138], [1.2, -1.5785714285714283], [1.2, -1.7678571428571423], [1.2, -1.9571428571428569], [1.2, -2.1464285714285714], [1.2, -2.3357142857142854], [1.2, -2.5249999999999995], [1.2, -2.714285714285714], [1.2, -2.9035714285714285], [1.2, -3.0928571428571425], [1.2, -3.2821428571428566], [1.2, -3.471428571428571], [1.2, -3.6607142857142856], [1.2, -3.8499999999999996]]);
																							}
																						}
																						translate(v = [0, -3.8, -0.1]) {
																							cylinder(h = 5.2, r = 1.2249999999999999);
																						}
																					}
																				}
																			}
																		}
																		translate(v = [0, 0, 0]) {
																			rotate(a = [0, 0, 0]) {
																				difference() {
																					union() {
																						translate(v = [-5.5, -12.0, 4.95]) {
																							cube(size = [11.0, 6.5, 2.05]);
																						}
																					}
																					union();
																				}
																			}
																		}
																		translate(v = [-5.5, -12.0, 4.95]) {
																			cube(size = [2.0500000000000003, 12.0, 2.05]);
																		}
																		translate(v = [3.4499999999999997, -12.0, 4.95]) {
																			cube(size = [2.0500000000000003, 12.0, 2.05]);
																		}
																	}
																	union();
																}
															}
														}
													}
													union();
												}
											}
										}
										translate(v = [-2.5, -196.8, 7.5]) {
											cube(size = [8.0, 196.6, 3.0]);
										}
										translate(v = [-2.5, -100.0, 10.45]) {
											cube(size = [12.0, 3.0, 6.05]);
										}
									}
									union() {
										translate(v = [-4.600000000499989, 0.1, 10.5]) {
											rotate(a = [90, 0, 0]) {
												cylinder(h = 23.85, r = 1.8);
											}
										}
										translate(v = [-4.600000000499989, -15.8, 10.5]) {
											rotate(a = [90, 0, 0]) {
												cylinder(h = 2.9, r = 3.3735);
											}
										}
										translate(v = [4.600000000499989, 0.1, 10.5]) {
											rotate(a = [90, 0, 0]) {
												cylinder(h = 23.85, r = 1.8);
											}
										}
										translate(v = [4.600000000499989, -15.8, 10.5]) {
											rotate(a = [90, 0, 0]) {
												cylinder(h = 2.9, r = 3.3735);
											}
										}
										translate(v = [-4.600000000499989, -197.1, 10.5]) {
											rotate(a = [-90, 0, 0]) {
												cylinder(h = 23.85, r = 1.8);
											}
										}
										translate(v = [-4.600000000499989, -181.2, 10.5]) {
											rotate(a = [-90, 0, 0]) {
												cylinder(h = 2.9, r = 3.3735);
											}
										}
										translate(v = [4.600000000499989, -197.1, 10.5]) {
											rotate(a = [-90, 0, 0]) {
												cylinder(h = 23.85, r = 1.8);
											}
										}
										translate(v = [4.600000000499989, -181.2, 10.5]) {
											rotate(a = [-90, 0, 0]) {
												cylinder(h = 2.9, r = 3.3735);
											}
										}
									}
								}
							}
						}
					}
					union();
				}
			}
		}
	}
	union();
}
